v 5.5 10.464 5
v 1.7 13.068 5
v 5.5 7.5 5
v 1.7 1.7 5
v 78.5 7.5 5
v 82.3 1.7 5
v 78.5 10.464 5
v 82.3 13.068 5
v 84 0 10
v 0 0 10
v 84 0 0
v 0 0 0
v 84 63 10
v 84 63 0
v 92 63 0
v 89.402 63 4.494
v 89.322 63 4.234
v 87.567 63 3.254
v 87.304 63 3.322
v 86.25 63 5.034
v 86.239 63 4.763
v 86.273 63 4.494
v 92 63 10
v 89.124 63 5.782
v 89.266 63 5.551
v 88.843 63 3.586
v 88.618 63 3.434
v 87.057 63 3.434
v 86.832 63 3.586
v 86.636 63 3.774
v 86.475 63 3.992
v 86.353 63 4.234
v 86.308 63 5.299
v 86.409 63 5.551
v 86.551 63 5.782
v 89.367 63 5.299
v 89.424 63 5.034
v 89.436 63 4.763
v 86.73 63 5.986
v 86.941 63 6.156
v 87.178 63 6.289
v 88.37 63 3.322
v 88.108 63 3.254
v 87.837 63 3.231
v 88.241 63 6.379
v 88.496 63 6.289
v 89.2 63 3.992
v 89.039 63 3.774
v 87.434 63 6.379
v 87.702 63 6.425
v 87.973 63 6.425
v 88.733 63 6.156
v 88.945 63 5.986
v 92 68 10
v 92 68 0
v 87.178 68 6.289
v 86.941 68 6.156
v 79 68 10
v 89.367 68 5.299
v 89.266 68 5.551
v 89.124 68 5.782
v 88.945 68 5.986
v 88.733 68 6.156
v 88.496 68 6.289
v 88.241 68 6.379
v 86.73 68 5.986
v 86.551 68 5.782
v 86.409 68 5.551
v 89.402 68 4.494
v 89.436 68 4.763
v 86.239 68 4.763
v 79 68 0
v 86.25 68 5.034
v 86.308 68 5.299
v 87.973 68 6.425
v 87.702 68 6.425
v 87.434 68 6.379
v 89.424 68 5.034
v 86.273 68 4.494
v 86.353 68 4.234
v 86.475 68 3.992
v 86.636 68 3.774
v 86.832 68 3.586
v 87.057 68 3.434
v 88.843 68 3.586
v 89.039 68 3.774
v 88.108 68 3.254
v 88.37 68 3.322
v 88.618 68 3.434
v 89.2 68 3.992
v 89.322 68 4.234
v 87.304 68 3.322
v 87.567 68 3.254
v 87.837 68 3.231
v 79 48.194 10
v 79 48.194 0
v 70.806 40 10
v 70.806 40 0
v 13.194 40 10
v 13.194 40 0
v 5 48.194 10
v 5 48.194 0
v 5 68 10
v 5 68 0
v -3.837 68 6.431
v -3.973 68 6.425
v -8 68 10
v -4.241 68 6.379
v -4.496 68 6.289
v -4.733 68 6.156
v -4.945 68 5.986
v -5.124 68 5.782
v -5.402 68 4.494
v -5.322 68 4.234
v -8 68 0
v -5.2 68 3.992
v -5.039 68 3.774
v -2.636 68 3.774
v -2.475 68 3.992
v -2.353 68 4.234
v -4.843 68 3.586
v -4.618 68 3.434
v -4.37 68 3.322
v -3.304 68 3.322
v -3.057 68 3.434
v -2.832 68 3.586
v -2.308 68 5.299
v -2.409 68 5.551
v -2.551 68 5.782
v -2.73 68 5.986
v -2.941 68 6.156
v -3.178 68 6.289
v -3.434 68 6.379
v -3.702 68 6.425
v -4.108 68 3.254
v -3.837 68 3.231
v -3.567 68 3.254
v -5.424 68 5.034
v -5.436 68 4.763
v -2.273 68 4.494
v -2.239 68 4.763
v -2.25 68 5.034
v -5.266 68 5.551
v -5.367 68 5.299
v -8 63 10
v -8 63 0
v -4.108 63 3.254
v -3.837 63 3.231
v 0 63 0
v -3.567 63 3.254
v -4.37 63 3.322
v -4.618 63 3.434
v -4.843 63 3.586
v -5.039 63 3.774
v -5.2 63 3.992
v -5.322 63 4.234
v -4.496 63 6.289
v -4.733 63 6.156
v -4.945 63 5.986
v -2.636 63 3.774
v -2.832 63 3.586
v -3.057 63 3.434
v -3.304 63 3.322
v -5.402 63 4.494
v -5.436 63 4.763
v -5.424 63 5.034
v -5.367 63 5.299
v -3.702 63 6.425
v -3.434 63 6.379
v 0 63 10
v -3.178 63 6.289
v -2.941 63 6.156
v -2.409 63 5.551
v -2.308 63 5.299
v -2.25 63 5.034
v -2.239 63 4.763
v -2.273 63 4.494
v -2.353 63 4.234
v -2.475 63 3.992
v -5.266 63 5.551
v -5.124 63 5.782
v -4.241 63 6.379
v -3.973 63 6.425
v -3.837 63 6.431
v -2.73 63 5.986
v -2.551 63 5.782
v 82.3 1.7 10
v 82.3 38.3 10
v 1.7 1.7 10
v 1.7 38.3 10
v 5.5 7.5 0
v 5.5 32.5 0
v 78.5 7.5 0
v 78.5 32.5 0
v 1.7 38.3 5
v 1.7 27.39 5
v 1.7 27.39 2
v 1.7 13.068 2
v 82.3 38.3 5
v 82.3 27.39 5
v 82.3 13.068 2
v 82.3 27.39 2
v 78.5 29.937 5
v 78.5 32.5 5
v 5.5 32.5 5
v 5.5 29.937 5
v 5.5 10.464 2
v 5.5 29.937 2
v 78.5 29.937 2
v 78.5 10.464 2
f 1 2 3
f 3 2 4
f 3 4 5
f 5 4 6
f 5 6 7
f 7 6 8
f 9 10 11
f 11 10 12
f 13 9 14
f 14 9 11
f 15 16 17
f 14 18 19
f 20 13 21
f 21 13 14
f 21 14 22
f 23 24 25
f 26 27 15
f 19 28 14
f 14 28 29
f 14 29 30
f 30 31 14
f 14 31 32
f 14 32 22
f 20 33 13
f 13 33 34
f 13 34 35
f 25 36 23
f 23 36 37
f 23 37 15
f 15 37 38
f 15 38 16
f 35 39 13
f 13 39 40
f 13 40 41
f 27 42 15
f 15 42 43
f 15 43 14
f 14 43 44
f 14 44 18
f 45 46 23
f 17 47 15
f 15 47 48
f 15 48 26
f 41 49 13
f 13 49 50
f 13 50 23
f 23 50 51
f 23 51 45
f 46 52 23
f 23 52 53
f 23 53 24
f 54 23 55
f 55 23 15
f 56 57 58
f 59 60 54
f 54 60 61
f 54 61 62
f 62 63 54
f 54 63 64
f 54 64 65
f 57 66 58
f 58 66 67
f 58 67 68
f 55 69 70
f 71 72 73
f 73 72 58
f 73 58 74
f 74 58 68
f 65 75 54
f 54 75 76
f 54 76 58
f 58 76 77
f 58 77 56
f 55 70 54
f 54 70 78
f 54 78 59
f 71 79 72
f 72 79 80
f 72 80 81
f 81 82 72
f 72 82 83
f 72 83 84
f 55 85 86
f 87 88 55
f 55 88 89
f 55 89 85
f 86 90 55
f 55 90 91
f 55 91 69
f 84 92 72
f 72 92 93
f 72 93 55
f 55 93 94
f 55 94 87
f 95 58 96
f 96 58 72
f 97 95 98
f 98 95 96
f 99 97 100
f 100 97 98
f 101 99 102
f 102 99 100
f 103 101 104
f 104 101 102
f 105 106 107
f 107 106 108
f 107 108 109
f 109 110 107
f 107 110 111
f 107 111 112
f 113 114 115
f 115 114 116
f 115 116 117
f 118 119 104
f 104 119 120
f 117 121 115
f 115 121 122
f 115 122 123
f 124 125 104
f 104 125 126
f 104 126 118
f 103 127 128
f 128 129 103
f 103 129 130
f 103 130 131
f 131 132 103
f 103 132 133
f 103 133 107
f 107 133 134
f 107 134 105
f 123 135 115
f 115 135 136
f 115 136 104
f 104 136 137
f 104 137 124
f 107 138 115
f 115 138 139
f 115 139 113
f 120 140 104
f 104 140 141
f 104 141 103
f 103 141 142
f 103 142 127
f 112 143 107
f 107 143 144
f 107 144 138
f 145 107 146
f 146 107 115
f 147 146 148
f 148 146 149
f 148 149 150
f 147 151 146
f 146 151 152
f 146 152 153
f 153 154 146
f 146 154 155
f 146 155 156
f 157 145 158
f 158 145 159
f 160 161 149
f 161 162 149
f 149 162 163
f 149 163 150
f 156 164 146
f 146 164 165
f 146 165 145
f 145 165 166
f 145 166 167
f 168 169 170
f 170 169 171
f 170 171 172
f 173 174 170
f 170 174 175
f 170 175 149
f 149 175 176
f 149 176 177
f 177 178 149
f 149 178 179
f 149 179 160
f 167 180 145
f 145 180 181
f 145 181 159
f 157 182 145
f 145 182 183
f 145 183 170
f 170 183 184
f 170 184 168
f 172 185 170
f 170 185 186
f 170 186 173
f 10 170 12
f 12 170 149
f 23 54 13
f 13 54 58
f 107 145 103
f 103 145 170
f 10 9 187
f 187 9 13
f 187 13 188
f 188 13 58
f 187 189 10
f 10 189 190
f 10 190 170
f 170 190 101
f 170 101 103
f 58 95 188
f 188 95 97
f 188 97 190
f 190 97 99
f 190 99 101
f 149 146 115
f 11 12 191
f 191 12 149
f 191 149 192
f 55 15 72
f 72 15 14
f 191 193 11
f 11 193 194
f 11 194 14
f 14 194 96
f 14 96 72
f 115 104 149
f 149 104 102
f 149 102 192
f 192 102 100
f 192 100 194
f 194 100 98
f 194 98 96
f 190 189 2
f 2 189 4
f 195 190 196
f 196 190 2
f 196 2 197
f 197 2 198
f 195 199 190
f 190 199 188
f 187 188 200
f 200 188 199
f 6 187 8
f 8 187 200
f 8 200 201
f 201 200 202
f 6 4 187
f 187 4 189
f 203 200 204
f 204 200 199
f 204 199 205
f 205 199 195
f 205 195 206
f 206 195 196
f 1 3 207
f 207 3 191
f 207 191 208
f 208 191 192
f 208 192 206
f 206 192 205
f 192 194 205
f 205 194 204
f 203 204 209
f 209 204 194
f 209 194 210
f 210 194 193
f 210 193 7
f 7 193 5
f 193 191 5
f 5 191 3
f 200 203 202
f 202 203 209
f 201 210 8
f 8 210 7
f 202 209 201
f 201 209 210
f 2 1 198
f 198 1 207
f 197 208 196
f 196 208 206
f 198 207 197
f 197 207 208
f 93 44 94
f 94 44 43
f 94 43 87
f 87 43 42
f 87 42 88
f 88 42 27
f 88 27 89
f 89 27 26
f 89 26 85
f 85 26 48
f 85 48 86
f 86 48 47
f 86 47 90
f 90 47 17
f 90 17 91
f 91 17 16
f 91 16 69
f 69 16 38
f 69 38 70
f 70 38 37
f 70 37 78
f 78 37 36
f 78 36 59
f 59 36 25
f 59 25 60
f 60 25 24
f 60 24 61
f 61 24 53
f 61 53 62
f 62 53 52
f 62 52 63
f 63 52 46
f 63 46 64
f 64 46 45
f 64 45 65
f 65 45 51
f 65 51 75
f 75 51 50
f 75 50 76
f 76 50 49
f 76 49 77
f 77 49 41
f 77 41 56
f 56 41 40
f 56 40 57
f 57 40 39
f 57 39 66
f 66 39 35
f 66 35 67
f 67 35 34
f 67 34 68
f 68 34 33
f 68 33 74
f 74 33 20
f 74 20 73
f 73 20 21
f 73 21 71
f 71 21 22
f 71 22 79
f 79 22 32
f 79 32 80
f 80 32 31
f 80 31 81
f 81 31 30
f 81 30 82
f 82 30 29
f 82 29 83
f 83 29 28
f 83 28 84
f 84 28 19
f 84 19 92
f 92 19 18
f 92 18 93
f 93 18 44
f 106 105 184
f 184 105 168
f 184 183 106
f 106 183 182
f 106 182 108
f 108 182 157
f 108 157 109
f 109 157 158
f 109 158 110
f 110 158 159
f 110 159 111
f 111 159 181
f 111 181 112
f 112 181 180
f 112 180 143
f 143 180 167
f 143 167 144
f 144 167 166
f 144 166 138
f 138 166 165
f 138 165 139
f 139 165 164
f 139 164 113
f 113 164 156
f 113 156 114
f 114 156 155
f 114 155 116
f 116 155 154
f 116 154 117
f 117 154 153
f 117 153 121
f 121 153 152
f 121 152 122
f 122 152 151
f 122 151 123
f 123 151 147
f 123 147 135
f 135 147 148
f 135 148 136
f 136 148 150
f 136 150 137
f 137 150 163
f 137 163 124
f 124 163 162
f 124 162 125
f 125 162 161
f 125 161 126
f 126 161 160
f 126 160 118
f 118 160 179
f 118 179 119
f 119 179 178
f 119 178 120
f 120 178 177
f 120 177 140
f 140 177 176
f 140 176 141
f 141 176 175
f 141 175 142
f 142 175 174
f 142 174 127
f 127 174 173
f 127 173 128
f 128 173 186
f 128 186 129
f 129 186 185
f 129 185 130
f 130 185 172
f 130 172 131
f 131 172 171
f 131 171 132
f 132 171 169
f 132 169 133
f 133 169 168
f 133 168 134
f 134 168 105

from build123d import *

# Parameters (mm, degrees)
EXTRUDE_1_DEPTH     = 10
SKETCH_2_W          = 80.6
SKETCH_2_H          = 36.6
CUT_EXTRUDE_1_DEPTH = 5
SKETCH_3_W          = 73
SKETCH_3_H          = 25
CUT_EXTRUDE_2_DEPTH = 115.512008104
CUT_EXTRUDE_3_DEPTH = 3
SKETCH_5_R          = 1.6
CUT_EXTRUDE_4_DEPTH = 112.950882087


with BuildPart() as part:
    # 草图1 → 凸台-拉伸1 (new body)
    with BuildSketch(Plane.XY):
        Polygon((0, 40), (0, 63), (-8, 63), (-8, 68), (5, 68), (5, 48.19405544), (13.19405544, 40), (70.80594456, 40), (79, 48.19405544), (79, 68), (92, 68), (92, 63), (84, 63), (84, 40), (84, 0), (0, 0), align=None)
    extrude(amount=EXTRUDE_1_DEPTH)

    # 草图2 → 切除-拉伸1 (cut)
    with BuildSketch(Plane.XY.offset(10)):
        with Locations((42, 20)):
            Rectangle(SKETCH_2_W, SKETCH_2_H)
    extrude(amount=-CUT_EXTRUDE_1_DEPTH, mode=Mode.SUBTRACT)

    # 草图3 → 切除-拉伸2 (cut, through all)
    with BuildSketch(Plane.XY.offset(5)):
        with Locations((42, 20)):
            Rectangle(SKETCH_3_W, SKETCH_3_H)
    extrude(amount=-CUT_EXTRUDE_2_DEPTH, mode=Mode.SUBTRACT)

    # 草图4 → 切除-拉伸3 (cut)
    with BuildSketch(Plane.XY.offset(5)):
        Polygon((77.017311929, 30.931067044), (82.3, 27.389990557), (82.3, 13.068303431), (77.017311929, 9.448536355), align=None)
        Polygon((6.982688071, 9.448536355), (6.982688071, 30.931067044), (1.7, 27.389990557), (1.7, 13.068303431), align=None)
    extrude(amount=-CUT_EXTRUDE_3_DEPTH, mode=Mode.SUBTRACT)

    # 草图5 → 切除-拉伸4 (cut, through all)
    with BuildSketch(Plane.XZ.offset(-63)):
        with Locations(Location((87.837450425, 4.830878187, 0), (0, 0, 270))):
            Circle(SKETCH_5_R)
        with Locations(Location((-3.837450425, 4.830878187, 0), (0, 0, 90))):
            Circle(SKETCH_5_R)
    extrude(amount=-CUT_EXTRUDE_4_DEPTH, mode=Mode.SUBTRACT)


solid = part.part
